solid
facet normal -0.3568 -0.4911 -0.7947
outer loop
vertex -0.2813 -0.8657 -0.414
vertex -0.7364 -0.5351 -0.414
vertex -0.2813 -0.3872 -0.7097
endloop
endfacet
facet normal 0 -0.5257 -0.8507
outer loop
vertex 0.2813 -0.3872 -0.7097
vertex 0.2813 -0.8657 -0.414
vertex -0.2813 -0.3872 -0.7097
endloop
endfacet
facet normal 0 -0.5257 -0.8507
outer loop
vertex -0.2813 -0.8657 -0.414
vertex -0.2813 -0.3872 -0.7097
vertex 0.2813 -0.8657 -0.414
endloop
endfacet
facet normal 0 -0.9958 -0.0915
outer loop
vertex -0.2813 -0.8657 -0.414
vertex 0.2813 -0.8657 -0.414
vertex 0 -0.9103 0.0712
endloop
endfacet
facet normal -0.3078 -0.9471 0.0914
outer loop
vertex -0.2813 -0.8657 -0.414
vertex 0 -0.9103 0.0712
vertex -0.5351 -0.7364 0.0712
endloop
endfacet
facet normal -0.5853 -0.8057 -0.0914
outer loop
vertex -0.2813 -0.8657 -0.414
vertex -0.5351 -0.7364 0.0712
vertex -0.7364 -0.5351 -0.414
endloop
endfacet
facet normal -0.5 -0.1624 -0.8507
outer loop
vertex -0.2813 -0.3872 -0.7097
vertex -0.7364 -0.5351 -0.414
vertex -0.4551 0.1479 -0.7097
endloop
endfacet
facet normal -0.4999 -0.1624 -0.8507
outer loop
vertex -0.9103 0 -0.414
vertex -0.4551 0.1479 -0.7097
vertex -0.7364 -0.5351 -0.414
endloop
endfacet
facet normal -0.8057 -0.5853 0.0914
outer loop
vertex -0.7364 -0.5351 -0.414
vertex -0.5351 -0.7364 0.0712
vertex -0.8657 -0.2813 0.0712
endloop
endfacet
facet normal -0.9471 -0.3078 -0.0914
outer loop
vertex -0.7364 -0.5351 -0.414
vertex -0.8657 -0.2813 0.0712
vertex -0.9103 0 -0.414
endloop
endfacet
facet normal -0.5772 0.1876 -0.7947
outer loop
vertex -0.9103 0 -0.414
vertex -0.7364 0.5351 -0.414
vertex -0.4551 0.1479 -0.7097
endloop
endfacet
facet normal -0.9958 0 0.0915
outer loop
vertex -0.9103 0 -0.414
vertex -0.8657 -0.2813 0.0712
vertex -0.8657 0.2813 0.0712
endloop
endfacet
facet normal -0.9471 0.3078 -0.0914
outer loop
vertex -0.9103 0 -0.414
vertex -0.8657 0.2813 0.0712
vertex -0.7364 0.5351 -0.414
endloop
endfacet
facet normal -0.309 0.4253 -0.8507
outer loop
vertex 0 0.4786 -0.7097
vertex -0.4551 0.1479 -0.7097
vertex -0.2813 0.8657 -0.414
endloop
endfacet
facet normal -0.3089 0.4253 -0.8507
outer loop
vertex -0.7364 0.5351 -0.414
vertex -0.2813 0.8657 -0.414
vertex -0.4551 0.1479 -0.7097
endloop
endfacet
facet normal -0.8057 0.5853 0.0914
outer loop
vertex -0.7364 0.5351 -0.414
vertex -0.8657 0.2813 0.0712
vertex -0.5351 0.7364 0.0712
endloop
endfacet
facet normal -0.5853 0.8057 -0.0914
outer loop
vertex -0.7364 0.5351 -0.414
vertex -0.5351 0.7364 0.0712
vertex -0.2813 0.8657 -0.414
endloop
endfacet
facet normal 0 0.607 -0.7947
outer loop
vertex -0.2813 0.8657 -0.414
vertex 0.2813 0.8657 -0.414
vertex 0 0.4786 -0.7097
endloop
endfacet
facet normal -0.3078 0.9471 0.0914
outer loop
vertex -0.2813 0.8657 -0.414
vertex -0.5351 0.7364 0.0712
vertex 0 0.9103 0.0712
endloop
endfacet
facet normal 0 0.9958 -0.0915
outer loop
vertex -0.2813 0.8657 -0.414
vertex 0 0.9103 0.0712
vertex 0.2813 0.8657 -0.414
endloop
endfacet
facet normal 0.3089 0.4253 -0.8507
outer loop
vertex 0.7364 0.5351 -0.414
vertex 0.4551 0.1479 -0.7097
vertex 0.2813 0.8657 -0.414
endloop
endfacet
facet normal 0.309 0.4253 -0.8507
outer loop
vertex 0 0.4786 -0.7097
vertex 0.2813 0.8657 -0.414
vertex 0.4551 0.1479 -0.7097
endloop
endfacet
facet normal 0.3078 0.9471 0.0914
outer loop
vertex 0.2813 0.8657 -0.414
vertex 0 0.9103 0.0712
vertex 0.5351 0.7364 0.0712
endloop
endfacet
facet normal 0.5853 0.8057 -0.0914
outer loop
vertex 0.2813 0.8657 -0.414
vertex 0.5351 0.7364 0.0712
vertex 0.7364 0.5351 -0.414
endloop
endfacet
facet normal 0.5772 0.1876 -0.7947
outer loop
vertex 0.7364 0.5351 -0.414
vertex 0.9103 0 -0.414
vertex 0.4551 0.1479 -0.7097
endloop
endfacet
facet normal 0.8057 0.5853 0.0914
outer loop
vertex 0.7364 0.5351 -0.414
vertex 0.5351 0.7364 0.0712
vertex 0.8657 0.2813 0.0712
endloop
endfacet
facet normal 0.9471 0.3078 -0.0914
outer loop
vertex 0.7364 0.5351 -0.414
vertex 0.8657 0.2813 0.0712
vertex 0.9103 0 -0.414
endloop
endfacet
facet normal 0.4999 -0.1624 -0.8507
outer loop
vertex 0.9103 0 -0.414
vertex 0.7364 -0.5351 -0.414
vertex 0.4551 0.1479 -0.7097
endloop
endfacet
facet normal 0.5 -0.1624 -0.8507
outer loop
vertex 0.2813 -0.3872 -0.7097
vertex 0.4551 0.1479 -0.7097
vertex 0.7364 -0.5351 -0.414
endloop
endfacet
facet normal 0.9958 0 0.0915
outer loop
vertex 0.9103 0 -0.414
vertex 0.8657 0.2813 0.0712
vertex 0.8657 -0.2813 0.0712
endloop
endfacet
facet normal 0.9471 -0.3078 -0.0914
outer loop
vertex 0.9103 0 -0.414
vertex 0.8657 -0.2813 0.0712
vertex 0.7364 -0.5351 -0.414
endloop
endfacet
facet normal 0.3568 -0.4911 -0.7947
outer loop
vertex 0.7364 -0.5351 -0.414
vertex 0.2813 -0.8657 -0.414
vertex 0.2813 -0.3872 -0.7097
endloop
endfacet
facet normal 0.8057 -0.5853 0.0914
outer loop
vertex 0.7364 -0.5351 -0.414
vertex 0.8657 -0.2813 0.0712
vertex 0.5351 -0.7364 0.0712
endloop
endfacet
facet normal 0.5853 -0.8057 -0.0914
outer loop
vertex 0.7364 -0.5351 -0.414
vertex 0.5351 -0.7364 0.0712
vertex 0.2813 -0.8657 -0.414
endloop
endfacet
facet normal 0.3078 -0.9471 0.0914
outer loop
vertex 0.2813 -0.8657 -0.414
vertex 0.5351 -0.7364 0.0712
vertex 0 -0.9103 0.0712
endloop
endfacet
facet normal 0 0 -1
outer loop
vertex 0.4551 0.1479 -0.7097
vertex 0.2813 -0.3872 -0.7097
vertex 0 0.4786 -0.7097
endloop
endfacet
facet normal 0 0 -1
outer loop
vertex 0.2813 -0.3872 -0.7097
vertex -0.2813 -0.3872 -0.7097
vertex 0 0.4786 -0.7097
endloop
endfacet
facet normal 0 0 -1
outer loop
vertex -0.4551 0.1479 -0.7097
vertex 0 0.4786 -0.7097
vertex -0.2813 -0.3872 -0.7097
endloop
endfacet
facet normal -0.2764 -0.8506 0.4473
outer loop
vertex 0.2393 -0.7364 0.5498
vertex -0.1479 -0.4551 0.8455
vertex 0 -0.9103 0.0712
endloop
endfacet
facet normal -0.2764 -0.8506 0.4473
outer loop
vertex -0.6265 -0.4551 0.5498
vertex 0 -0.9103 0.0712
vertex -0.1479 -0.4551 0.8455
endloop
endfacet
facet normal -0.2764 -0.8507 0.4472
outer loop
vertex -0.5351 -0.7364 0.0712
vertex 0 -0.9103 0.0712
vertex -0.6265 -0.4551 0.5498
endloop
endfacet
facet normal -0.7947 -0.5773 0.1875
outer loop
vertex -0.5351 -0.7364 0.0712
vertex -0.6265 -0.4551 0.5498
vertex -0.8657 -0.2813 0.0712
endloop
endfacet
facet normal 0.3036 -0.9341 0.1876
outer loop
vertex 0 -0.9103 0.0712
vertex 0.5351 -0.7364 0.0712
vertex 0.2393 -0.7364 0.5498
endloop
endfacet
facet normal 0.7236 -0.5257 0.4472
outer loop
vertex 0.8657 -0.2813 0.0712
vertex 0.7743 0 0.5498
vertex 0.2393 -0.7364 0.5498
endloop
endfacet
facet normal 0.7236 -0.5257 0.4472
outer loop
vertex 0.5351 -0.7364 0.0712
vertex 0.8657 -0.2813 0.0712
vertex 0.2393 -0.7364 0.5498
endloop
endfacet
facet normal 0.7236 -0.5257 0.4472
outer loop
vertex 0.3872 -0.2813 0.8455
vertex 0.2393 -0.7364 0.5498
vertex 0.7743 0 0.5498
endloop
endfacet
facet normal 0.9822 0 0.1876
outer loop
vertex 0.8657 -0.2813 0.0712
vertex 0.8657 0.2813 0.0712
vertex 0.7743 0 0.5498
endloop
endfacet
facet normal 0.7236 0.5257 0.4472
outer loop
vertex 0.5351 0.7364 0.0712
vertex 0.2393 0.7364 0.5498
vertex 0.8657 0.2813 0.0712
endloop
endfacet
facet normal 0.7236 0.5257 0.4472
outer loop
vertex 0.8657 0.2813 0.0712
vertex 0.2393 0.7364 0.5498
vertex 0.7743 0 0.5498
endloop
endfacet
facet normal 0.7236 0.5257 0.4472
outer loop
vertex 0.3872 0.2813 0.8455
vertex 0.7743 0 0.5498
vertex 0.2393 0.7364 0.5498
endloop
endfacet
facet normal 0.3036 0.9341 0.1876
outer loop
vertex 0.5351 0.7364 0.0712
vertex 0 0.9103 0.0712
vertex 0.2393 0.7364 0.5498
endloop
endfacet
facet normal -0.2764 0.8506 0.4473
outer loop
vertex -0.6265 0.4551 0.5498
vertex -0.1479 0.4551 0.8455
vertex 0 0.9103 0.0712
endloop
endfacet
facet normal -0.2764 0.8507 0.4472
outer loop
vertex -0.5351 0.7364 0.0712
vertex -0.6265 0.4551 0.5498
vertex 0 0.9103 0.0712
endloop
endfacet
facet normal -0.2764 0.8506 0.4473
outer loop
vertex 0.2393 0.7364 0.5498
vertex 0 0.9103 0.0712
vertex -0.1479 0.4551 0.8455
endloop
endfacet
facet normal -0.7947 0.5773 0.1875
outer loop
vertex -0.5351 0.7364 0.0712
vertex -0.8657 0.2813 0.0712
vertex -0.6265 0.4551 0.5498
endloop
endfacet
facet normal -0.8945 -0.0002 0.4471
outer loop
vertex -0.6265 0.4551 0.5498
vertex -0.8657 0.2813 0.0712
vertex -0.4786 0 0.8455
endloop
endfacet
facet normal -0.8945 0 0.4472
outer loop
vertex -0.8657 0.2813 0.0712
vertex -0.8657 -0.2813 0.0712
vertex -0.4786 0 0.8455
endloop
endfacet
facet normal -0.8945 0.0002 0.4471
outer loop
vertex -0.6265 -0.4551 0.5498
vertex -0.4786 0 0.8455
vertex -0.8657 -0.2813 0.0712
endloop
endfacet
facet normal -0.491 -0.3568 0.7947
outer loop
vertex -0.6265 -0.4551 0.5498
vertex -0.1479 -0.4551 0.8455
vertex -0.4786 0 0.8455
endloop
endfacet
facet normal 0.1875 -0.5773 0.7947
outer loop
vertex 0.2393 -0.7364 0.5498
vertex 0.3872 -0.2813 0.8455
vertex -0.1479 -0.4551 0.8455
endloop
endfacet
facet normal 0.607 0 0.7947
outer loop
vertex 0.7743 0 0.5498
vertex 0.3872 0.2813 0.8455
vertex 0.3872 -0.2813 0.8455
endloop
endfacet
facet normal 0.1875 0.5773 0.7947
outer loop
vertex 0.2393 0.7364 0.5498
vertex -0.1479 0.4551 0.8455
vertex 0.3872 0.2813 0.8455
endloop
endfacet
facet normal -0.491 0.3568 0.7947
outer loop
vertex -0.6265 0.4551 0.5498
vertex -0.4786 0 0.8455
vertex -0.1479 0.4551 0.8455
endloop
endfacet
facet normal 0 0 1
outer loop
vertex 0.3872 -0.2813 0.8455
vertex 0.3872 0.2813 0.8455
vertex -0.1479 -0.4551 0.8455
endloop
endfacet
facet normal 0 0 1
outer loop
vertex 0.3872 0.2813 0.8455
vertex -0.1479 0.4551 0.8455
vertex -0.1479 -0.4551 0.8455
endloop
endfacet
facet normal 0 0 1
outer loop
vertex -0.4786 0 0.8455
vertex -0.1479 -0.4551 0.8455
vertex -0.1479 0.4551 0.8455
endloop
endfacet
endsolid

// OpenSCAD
polyhedron( points = [[-0.281294384136106, -0.865735098688848, -0.413976094700282], [-0.736438260375073, -0.535053716190076, -0.413976094700282], [-0.910287751618179, 9.62068600278161e-11, -0.413976094700282], [-0.736438261141105, 0.535053716366876, -0.413976094700282], [-0.281294385375572, 0.865735098824778, -0.413976094700282], [0.281294384916954, 0.865735098824783, -0.413976094700282], [0.736438261185612, 0.535053716366876, -0.413976094700282], [0.910287752476764, 9.62068600278161e-11, -0.413976094700282], [0.73643826204774, -0.535053716190073, -0.413976094700282], [0.281294386311896, -0.865735098688848, -0.413976094700282], [-0.281294384110847, -0.387168505691869, -0.709746514228419], [-0.45514387497724, 0.147885209873284, -0.709746514538112], [1.14544990041316e-09, 0.478566592141504, -0.709746514538112], [0.4551438771886, 0.14788520976381, -0.709746514538113], [0.281294386149081, -0.387168505808882, -0.709746514156101], [-0.535053715039523, -0.736438261438953, 0.0711987753389273], [1.1024782382953e-09, -0.910287752403905, 0.0711987753389273], [0.535053716476251, -0.736438261483398, 0.0711987752576973], [0.865735097759467, -0.281294385374624, 0.0711987751262643], [0.865735096755691, 0.28129438502985, 0.0711987749948317], [0.535053713848331, 0.7364382611364, 0.0711987749136017], [-2.1458024535767e-09, 0.910287752053307, 0.0711987749136017], [-0.535053717535182, 0.736438261180851, 0.0711987749948317], [-0.865735098859271, 0.281294385101766, 0.0711987751262643], [-0.865735097906015, -0.281294385302709, 0.0711987752576973], [-0.626451801390708, -0.45514387594615, 0.549765367156213], [0.239283296941067, -0.736438261317511, 0.549765366916759], [0.774337011093443, -4.63080201701638e-11, 0.549765366966143], [0.239283294136402, 0.736438261189655, 0.549765366834711], [-0.626451803087959, 0.455143876039949, 0.549765366966143], [-0.14788520926565, -0.455143875897072, 0.845535786566036], [0.387168505774221, -0.28129438513697, 0.84553578673362], [0.387168504765623, 0.281294385157423, 0.845535786602188], [-0.147885211125308, 0.455143876035724, 0.845535786602188], [-0.478566591985532, 3.26958342173222e-10, 0.845535786395032]], faces = [[0, 1, 10], [0, 10, 14, 9], [0, 9, 16], [0, 16, 15], [0, 15, 1], [1, 2, 11, 10], [1, 15, 24], [1, 24, 2], [2, 3, 11], [2, 24, 23], [2, 23, 3], [3, 4, 12, 11], [3, 23, 22], [3, 22, 4], [4, 5, 12], [4, 22, 21], [4, 21, 5], [5, 6, 13, 12], [5, 21, 20], [5, 20, 6], [6, 7, 13], [6, 20, 19], [6, 19, 7], [7, 8, 14, 13], [7, 19, 18], [7, 18, 8], [8, 9, 14], [8, 18, 17], [8, 17, 9], [9, 17, 16], [10, 11, 12, 13, 14], [15, 16, 26, 30, 25], [15, 25, 24], [16, 17, 26], [17, 18, 27, 31, 26], [18, 19, 27], [19, 20, 28, 32, 27], [20, 21, 28], [21, 22, 29, 33, 28], [22, 23, 29], [23, 24, 25, 34, 29], [25, 30, 34], [26, 31, 30], [27, 32, 31], [28, 33, 32], [29, 34, 33], [30, 31, 32, 33, 34]]);
